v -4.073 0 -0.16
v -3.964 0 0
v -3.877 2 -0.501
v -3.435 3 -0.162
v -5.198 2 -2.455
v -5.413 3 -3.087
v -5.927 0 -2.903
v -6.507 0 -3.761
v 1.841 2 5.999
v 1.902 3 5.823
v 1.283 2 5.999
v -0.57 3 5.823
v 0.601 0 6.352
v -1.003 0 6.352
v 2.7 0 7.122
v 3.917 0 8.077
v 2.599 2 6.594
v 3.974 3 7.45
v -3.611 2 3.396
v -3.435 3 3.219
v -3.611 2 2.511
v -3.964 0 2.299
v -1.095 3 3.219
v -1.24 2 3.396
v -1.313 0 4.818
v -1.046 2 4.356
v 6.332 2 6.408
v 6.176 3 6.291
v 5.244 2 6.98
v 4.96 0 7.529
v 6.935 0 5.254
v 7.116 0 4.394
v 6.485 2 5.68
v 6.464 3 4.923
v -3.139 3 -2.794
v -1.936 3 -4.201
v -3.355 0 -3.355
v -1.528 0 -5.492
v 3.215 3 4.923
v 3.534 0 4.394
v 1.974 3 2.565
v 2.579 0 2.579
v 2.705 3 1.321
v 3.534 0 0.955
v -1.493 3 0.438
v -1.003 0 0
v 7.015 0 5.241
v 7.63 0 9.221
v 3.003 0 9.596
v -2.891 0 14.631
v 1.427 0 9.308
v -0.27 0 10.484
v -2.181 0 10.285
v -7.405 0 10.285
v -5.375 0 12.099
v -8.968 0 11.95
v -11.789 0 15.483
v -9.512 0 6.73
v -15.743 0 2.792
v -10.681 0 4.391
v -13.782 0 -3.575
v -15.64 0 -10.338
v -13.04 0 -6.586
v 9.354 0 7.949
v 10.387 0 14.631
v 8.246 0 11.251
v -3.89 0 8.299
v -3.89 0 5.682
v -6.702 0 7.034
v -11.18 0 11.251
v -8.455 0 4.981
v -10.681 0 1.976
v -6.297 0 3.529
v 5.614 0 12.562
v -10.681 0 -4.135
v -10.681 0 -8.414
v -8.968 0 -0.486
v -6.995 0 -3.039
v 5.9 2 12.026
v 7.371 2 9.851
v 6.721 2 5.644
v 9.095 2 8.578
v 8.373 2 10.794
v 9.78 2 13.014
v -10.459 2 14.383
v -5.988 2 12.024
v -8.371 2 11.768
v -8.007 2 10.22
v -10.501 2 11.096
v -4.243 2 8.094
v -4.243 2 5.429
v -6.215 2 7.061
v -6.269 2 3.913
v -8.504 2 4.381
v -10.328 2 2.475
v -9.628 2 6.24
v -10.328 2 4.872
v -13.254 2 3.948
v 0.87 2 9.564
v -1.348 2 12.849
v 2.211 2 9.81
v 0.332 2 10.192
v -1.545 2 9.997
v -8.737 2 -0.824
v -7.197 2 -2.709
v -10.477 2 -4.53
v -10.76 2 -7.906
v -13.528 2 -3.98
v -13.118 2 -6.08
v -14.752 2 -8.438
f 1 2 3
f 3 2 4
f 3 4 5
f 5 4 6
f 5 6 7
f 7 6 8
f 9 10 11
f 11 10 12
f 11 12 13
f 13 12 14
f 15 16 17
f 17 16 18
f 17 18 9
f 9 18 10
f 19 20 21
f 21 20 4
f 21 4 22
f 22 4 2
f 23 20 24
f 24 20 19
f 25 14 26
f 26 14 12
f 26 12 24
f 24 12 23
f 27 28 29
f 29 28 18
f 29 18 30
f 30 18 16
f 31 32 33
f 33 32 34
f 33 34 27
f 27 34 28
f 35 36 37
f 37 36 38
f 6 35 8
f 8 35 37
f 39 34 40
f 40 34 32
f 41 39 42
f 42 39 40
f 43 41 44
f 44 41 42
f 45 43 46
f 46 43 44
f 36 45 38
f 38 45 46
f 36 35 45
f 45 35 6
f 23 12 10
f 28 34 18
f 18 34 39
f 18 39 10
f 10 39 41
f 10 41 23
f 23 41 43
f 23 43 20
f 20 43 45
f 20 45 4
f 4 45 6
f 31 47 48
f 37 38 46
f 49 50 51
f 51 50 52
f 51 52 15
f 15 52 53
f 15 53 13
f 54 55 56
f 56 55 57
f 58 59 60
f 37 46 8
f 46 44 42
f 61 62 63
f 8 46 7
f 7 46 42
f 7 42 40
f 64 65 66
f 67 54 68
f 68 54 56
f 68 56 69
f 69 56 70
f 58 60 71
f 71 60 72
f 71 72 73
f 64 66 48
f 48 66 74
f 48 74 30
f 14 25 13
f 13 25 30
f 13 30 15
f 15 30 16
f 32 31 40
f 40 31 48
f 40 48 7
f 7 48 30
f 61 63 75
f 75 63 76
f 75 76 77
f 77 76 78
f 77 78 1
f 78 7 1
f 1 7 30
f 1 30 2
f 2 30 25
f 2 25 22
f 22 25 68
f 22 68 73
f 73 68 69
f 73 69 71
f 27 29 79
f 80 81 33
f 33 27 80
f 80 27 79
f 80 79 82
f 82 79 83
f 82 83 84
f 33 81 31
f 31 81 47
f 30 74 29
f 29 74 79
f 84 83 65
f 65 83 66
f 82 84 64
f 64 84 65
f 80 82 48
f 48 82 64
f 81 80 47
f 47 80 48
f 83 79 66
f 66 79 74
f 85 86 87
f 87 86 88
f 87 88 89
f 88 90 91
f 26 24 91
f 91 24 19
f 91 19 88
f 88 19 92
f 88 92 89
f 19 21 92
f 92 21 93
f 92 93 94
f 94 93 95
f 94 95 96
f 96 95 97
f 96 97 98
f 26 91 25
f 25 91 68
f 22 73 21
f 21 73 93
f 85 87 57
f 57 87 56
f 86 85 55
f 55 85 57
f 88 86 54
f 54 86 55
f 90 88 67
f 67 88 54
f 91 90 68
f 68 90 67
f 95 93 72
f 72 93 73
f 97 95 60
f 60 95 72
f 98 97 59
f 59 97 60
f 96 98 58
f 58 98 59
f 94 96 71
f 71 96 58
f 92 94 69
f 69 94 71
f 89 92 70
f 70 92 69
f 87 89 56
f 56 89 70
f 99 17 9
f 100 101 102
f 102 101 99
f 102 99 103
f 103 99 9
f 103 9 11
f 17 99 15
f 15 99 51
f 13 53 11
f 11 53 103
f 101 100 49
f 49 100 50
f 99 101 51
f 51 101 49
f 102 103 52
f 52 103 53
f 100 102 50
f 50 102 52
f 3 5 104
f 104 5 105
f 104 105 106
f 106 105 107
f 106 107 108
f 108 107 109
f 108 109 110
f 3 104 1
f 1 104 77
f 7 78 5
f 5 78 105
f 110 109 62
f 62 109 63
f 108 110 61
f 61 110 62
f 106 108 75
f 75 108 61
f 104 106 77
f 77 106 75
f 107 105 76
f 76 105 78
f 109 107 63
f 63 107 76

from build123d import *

# Parameters (mm, degrees)
BOSS_EXTRUDE1_DEPTH = 3
BOSS_EXTRUDE1_TAPER = 10
BOSS_EXTRUDE2_DEPTH = 2
BOSS_EXTRUDE2_TAPER = 10


with BuildPart() as part:
    # Sketch2 → Boss-Extrude1 (new body)
    with BuildSketch(Plane(origin=(0, 0, 0), x_dir=(1, 0, 0), z_dir=(0, 1, 0))):
        Polygon((-1.528324253, 5.492415284), (-3.355149336, 3.355149336), (-6.507318108, 3.761110466), (-3.964091031, 0), (-3.964091031, -3.748296105), (-1.528324253, -3.748296105), (-1.002962791, -6.352097676), (1.719364784, -6.352097676), (3.916975027, -8.077462319), (6.642811529, -6.642811529), (7.116259803, -4.393932227), (3.534249835, -4.393932227), (2.579047177, -2.579047177), (3.534249835, -0.955202658), (-1.002962791, 0), align=None)
    extrude(amount=BOSS_EXTRUDE1_DEPTH, taper=BOSS_EXTRUDE1_TAPER)

    # Sketch3 → Boss-Extrude2 (add)
    with BuildSketch(Plane(origin=(0, 0, 0), x_dir=(1, 0, 0), z_dir=(0, 1, 0))):
        Polygon((10.386967226, -14.630930723), (9.354403277, -7.948617551), (7.630259288, -9.221195787), (7.015272692, -5.241265011), (4.708870367, -5.597654757), (5.613726928, -12.562233064), (8.245836253, -11.251331436), align=None)
        Polygon((3.707378368, -5.391000258), (1.988983683, -4.390600081), (-2.180835877, -10.285076618), (-0.270036733, -10.483558335), (-2.891449297, -14.630930723), (3.003431491, -9.596279278), (1.427179104, -9.307715176), align=None)
        Polygon((-11.789266005, -15.483155877), (-5.37466541, -12.099434913), (-7.404660906, -10.285076618), (-3.889999551, -8.299445569), (-3.889999551, -5.68241554), (1.090991617, -4.01155513), (-0.815187592, -0.637527311), (-6.297024016, -3.52921239), (-10.680628975, -1.975898906), (-10.680628975, -4.390600081), (-15.742910277, -2.79186121), (-9.511821995, -6.730319487), (-8.455251073, -4.981182544), (-6.701594742, -7.03447166), (-11.179985311, -11.251331436), (-8.967737144, -11.949990188), align=None)
        Polygon((-15.639992384, 10.338429497), (-13.782364953, 3.575498575), (-10.680628975, 4.134580902), (-8.967737144, 0.485871688), (-1.660461726, 0), (-3.965321164, 2.653546974), (-6.995301565, 3.038510834), (-10.680628975, 8.413901489), (-13.040069267, 6.586416727), align=None)
    extrude(amount=BOSS_EXTRUDE2_DEPTH, taper=BOSS_EXTRUDE2_TAPER)


solid = part.part
